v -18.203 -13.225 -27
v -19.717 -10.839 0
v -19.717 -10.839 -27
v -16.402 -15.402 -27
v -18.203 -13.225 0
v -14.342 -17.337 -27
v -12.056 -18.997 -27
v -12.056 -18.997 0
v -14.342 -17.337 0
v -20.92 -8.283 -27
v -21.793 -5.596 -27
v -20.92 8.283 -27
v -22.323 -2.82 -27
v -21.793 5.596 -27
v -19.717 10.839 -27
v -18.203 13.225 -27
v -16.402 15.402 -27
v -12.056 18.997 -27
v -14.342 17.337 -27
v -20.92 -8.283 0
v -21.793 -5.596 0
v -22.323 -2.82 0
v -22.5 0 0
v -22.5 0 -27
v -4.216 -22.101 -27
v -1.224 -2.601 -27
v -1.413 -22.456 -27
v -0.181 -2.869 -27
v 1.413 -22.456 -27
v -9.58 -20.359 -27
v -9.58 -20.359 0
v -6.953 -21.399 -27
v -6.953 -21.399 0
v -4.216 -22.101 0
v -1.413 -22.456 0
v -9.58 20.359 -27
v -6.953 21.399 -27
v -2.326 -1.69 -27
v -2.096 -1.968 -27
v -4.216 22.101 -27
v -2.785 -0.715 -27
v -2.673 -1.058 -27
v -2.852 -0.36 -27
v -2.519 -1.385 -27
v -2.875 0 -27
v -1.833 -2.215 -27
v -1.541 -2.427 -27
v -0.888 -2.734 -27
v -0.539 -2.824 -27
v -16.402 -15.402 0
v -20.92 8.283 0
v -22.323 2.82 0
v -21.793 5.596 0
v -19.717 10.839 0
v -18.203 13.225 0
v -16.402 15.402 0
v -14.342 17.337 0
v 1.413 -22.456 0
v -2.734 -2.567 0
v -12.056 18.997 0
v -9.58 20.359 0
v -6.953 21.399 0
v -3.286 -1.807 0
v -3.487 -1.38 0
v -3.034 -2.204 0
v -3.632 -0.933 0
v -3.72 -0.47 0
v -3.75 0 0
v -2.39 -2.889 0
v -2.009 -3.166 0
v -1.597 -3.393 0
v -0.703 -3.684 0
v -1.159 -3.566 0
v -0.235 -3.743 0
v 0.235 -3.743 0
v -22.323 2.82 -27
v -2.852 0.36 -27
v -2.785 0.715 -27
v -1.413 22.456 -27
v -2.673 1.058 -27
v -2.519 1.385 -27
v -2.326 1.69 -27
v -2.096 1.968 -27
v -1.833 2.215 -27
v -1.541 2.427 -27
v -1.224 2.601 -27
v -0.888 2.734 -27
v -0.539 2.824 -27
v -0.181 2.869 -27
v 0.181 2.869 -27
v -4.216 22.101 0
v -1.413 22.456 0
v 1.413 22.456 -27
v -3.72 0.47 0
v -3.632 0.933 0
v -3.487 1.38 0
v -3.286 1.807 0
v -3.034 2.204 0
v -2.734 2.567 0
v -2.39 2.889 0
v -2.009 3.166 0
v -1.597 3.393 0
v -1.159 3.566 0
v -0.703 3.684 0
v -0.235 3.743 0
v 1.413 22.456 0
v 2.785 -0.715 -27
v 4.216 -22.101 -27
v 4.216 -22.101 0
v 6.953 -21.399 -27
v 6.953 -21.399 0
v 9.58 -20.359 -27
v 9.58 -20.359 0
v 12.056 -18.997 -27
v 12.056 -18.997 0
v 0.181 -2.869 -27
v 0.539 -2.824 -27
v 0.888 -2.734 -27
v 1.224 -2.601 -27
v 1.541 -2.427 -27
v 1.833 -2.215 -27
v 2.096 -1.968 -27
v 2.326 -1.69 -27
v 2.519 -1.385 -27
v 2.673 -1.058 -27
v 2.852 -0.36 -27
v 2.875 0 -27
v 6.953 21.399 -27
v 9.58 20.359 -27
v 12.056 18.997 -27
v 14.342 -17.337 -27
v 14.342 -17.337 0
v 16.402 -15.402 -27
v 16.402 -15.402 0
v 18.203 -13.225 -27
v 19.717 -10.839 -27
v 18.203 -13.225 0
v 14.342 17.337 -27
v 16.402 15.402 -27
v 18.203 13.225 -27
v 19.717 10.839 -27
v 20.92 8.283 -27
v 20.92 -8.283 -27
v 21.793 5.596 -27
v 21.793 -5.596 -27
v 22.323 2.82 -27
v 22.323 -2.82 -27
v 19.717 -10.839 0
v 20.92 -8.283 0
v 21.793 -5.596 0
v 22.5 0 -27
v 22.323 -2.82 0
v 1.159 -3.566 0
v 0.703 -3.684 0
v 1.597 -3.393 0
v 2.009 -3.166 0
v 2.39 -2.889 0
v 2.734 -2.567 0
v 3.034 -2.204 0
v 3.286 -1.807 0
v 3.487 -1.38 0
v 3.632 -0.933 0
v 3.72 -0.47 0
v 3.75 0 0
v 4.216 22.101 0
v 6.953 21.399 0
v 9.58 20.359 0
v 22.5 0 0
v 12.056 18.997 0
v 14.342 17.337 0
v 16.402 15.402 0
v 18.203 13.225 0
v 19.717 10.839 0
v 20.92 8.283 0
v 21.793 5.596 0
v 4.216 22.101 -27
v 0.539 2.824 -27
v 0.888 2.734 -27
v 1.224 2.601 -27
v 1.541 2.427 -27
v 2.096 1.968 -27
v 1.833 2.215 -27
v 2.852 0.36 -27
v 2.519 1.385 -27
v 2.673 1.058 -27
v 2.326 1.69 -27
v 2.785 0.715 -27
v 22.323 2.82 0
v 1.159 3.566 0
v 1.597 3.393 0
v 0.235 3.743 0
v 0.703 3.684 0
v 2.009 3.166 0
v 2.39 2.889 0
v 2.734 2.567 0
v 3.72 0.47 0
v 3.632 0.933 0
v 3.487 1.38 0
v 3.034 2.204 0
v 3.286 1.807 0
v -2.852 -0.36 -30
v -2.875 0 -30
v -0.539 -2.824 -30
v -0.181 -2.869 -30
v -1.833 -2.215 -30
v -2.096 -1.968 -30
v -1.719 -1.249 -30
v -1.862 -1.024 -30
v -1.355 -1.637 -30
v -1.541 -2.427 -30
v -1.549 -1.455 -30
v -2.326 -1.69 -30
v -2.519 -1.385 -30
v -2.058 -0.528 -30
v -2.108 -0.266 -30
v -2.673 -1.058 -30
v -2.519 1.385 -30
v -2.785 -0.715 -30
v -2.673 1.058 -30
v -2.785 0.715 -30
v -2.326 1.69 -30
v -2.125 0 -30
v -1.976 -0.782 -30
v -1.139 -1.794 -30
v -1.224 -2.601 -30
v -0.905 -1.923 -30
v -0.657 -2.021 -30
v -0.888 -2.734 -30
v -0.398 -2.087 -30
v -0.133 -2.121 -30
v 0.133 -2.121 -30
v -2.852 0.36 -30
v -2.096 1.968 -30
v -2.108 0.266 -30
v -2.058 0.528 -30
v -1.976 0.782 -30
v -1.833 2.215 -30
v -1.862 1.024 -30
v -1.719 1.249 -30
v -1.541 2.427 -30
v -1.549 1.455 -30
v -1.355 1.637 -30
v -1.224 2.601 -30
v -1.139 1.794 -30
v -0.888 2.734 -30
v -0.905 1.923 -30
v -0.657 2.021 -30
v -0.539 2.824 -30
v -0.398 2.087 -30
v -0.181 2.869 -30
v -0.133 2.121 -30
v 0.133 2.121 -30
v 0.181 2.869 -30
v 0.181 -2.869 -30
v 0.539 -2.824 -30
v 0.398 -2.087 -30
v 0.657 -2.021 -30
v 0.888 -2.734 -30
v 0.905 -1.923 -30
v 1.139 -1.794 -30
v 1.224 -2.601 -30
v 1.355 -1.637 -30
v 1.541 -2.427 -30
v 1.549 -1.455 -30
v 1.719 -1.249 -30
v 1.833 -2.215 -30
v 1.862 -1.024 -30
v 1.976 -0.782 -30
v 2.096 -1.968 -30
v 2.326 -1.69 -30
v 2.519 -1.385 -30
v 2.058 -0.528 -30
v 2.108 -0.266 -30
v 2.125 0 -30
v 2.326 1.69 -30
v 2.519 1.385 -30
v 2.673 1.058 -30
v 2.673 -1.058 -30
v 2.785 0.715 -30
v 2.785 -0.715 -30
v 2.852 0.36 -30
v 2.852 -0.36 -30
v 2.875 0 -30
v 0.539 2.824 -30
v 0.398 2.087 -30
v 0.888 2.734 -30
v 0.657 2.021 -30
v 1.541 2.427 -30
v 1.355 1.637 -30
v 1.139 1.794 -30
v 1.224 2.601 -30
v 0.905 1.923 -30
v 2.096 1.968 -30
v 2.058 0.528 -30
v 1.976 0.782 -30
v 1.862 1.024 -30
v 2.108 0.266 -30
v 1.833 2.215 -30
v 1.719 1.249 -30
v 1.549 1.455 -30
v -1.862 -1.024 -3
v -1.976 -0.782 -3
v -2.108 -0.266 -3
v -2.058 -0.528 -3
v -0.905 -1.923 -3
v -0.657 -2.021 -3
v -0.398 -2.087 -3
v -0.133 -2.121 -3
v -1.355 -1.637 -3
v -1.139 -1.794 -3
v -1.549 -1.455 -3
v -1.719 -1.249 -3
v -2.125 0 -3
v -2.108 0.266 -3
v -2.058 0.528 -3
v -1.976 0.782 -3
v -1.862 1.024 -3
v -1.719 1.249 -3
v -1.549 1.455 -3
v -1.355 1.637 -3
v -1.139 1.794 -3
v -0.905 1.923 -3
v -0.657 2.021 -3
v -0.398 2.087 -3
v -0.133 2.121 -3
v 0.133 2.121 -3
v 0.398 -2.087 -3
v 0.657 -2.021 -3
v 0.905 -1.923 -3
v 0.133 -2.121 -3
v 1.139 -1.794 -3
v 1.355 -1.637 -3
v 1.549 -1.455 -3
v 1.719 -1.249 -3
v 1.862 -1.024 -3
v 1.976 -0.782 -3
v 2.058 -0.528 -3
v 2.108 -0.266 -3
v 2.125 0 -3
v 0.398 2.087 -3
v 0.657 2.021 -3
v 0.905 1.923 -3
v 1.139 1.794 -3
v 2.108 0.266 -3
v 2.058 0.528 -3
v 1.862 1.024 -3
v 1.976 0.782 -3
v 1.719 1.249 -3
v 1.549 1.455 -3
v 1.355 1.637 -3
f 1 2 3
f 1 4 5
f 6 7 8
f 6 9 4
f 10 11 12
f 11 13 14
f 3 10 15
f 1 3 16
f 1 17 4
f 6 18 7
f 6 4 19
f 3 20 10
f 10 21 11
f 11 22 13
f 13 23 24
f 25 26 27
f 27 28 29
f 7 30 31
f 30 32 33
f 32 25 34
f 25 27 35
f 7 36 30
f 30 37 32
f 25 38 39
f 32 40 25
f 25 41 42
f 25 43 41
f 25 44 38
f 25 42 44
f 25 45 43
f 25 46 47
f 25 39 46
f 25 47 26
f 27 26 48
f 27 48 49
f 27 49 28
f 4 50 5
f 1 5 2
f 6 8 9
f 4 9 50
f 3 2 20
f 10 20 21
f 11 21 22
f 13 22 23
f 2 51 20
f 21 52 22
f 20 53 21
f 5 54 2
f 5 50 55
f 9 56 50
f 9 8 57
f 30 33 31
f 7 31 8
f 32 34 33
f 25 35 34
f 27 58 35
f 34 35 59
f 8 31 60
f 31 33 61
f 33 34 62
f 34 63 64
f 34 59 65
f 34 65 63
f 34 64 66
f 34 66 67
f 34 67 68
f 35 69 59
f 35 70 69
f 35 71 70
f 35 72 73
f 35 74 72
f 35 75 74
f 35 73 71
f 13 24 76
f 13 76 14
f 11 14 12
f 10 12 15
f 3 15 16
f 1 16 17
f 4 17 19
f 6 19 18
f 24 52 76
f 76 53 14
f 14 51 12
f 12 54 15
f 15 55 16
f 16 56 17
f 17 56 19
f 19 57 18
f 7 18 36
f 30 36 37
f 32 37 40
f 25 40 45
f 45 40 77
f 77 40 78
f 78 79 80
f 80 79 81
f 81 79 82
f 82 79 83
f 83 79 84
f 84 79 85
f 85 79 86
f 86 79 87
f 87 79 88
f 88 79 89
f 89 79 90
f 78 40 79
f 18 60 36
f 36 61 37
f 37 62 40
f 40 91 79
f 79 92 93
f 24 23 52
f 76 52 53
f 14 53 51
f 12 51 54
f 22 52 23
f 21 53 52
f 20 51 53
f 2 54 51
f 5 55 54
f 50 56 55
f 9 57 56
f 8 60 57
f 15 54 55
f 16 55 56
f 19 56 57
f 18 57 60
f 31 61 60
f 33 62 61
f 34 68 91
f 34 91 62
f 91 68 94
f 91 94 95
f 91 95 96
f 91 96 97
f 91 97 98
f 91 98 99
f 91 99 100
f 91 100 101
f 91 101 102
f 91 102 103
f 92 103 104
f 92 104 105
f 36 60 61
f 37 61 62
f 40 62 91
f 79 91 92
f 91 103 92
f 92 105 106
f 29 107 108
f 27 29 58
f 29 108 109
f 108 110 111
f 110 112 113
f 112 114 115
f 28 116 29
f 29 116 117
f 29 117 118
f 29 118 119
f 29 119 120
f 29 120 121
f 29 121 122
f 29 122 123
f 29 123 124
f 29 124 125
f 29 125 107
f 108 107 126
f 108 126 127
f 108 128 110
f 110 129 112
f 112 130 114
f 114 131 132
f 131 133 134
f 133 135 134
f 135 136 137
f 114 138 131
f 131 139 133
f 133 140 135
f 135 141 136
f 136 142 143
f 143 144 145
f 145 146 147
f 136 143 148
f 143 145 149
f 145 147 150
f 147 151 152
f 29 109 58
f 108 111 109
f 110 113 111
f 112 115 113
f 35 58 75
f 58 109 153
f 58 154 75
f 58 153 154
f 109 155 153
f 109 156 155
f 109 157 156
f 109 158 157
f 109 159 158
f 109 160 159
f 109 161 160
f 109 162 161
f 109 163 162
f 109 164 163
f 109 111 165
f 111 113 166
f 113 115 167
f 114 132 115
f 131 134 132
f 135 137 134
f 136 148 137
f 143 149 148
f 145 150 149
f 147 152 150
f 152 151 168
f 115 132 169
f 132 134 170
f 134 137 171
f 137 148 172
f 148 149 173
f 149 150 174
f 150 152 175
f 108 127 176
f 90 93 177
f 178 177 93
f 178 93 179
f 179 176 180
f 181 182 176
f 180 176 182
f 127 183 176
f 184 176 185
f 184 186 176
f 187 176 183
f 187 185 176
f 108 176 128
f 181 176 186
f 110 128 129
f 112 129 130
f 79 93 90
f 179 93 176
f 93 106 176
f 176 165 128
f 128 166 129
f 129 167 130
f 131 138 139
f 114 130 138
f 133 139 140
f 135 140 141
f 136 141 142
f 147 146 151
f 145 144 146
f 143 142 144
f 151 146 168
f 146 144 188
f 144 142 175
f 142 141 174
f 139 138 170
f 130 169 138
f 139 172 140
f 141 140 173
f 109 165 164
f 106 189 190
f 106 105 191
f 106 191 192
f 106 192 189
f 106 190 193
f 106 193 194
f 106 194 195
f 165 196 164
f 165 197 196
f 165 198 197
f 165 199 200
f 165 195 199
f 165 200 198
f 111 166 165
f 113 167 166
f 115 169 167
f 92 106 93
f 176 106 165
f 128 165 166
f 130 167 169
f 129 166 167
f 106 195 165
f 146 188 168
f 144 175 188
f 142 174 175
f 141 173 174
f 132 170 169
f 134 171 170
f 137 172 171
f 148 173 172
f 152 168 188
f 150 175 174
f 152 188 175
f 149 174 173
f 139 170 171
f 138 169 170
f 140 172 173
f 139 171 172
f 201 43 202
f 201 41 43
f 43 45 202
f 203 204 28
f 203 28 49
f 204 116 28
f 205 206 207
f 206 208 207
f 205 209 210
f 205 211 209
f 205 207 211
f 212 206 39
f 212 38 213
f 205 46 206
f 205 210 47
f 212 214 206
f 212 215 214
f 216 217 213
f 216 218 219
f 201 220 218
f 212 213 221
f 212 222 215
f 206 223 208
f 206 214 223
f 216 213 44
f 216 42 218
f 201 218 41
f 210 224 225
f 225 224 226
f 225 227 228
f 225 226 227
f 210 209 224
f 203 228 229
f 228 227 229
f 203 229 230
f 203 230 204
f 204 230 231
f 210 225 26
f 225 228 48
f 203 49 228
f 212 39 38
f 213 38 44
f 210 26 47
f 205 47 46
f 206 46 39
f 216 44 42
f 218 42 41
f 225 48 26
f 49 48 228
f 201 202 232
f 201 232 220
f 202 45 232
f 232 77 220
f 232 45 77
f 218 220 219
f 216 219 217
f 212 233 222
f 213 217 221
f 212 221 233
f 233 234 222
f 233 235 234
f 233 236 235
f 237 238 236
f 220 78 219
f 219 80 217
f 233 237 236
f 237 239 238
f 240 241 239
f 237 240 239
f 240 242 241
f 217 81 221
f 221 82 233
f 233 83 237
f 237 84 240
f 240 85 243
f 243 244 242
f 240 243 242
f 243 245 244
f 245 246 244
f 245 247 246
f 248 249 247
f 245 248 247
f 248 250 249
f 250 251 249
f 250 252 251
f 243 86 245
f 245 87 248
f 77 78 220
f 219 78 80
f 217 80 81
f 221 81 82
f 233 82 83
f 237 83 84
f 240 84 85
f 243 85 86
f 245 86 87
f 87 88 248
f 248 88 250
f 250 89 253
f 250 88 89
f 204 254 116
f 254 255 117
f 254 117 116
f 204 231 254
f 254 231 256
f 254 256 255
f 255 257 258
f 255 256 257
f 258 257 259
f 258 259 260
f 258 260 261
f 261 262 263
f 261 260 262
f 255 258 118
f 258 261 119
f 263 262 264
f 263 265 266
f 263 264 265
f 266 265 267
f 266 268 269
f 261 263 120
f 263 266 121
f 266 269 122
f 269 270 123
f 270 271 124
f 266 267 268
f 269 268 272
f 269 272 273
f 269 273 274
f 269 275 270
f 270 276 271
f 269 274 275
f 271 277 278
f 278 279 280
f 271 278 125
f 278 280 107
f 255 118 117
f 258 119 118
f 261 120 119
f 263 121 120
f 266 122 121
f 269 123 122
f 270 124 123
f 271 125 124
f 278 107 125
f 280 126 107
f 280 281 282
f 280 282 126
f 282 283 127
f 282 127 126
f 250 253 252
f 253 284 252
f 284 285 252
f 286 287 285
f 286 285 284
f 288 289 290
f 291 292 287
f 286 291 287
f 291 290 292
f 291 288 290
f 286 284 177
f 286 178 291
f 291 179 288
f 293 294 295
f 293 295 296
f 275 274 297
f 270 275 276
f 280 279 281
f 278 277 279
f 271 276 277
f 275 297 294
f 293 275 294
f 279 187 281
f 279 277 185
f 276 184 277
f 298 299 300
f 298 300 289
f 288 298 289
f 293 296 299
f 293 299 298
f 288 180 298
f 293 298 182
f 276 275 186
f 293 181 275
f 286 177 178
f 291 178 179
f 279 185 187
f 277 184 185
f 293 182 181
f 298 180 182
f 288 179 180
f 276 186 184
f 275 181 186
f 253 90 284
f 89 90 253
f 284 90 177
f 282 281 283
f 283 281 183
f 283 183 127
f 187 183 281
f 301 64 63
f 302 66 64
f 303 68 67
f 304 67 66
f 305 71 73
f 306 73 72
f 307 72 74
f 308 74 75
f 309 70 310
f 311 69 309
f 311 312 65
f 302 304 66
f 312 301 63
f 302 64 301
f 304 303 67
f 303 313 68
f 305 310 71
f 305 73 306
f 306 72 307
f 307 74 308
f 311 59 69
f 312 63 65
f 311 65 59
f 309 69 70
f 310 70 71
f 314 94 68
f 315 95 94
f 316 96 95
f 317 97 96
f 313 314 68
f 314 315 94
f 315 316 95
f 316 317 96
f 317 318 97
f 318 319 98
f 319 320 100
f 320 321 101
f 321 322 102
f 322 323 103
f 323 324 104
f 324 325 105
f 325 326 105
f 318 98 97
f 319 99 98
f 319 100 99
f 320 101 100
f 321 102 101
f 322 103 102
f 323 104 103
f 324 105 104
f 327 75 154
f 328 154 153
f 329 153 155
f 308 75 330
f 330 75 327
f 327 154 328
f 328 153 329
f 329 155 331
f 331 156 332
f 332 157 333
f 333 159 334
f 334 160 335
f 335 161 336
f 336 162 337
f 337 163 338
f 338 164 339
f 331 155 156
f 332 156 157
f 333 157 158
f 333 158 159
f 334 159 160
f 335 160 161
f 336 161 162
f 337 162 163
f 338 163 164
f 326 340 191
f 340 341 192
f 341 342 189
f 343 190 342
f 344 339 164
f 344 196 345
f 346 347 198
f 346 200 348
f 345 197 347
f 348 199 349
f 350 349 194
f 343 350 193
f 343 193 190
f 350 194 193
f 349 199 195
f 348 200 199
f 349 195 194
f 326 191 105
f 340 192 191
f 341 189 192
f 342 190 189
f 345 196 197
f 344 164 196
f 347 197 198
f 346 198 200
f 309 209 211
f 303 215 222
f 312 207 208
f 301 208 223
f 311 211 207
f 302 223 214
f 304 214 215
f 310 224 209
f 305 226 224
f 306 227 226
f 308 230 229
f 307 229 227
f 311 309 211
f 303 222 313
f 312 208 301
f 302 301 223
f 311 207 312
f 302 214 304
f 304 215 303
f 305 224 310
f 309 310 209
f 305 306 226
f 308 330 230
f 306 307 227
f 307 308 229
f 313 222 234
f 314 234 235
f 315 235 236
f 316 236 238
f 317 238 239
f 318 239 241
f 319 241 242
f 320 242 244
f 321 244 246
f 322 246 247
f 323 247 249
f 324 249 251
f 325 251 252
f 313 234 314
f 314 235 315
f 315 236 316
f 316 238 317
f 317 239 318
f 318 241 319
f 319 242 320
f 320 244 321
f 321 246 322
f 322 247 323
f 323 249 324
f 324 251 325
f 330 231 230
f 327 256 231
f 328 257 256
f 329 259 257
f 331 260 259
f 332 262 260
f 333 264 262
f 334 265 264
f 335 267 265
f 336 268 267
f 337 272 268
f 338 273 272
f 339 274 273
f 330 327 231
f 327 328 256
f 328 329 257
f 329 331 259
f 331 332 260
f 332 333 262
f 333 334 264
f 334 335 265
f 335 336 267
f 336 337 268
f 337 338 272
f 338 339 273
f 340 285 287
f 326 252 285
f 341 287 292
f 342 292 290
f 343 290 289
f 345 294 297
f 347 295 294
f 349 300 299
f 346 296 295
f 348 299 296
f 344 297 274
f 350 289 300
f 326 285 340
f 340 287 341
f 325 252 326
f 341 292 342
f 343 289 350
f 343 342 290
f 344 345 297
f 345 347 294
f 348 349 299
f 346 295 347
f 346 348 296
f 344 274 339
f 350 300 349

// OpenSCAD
$fn = 50;

difference() {
	union() {
		translate(v = [0, 0, -27.0]) {
			cylinder(h = 27, r = 22.5);
		}
		#translate(v = [0, 0, -30.0]) {
			cylinder(h = 30, r = 2.875);
		}
	}
	union() {
		translate(v = [0, 0, 0]) {
			rotate(a = [0, 0, 0]) {
				difference() {
					union() {
						translate(v = [0, 0, -30.0]) {
							cylinder(h = 30, r = 2.0);
						}
						translate(v = [0, 0, -3]) {
							cylinder(h = 3, r1 = 2.125, r2 = 3.75);
						}
						translate(v = [0, 0, -30.0]) {
							cylinder(h = 30, r = 2.125);
						}
						translate(v = [0, 0, -30.0]) {
							cylinder(h = 30, r = 2.0);
						}
					}
					union();
				}
			}
		}
	}
}
